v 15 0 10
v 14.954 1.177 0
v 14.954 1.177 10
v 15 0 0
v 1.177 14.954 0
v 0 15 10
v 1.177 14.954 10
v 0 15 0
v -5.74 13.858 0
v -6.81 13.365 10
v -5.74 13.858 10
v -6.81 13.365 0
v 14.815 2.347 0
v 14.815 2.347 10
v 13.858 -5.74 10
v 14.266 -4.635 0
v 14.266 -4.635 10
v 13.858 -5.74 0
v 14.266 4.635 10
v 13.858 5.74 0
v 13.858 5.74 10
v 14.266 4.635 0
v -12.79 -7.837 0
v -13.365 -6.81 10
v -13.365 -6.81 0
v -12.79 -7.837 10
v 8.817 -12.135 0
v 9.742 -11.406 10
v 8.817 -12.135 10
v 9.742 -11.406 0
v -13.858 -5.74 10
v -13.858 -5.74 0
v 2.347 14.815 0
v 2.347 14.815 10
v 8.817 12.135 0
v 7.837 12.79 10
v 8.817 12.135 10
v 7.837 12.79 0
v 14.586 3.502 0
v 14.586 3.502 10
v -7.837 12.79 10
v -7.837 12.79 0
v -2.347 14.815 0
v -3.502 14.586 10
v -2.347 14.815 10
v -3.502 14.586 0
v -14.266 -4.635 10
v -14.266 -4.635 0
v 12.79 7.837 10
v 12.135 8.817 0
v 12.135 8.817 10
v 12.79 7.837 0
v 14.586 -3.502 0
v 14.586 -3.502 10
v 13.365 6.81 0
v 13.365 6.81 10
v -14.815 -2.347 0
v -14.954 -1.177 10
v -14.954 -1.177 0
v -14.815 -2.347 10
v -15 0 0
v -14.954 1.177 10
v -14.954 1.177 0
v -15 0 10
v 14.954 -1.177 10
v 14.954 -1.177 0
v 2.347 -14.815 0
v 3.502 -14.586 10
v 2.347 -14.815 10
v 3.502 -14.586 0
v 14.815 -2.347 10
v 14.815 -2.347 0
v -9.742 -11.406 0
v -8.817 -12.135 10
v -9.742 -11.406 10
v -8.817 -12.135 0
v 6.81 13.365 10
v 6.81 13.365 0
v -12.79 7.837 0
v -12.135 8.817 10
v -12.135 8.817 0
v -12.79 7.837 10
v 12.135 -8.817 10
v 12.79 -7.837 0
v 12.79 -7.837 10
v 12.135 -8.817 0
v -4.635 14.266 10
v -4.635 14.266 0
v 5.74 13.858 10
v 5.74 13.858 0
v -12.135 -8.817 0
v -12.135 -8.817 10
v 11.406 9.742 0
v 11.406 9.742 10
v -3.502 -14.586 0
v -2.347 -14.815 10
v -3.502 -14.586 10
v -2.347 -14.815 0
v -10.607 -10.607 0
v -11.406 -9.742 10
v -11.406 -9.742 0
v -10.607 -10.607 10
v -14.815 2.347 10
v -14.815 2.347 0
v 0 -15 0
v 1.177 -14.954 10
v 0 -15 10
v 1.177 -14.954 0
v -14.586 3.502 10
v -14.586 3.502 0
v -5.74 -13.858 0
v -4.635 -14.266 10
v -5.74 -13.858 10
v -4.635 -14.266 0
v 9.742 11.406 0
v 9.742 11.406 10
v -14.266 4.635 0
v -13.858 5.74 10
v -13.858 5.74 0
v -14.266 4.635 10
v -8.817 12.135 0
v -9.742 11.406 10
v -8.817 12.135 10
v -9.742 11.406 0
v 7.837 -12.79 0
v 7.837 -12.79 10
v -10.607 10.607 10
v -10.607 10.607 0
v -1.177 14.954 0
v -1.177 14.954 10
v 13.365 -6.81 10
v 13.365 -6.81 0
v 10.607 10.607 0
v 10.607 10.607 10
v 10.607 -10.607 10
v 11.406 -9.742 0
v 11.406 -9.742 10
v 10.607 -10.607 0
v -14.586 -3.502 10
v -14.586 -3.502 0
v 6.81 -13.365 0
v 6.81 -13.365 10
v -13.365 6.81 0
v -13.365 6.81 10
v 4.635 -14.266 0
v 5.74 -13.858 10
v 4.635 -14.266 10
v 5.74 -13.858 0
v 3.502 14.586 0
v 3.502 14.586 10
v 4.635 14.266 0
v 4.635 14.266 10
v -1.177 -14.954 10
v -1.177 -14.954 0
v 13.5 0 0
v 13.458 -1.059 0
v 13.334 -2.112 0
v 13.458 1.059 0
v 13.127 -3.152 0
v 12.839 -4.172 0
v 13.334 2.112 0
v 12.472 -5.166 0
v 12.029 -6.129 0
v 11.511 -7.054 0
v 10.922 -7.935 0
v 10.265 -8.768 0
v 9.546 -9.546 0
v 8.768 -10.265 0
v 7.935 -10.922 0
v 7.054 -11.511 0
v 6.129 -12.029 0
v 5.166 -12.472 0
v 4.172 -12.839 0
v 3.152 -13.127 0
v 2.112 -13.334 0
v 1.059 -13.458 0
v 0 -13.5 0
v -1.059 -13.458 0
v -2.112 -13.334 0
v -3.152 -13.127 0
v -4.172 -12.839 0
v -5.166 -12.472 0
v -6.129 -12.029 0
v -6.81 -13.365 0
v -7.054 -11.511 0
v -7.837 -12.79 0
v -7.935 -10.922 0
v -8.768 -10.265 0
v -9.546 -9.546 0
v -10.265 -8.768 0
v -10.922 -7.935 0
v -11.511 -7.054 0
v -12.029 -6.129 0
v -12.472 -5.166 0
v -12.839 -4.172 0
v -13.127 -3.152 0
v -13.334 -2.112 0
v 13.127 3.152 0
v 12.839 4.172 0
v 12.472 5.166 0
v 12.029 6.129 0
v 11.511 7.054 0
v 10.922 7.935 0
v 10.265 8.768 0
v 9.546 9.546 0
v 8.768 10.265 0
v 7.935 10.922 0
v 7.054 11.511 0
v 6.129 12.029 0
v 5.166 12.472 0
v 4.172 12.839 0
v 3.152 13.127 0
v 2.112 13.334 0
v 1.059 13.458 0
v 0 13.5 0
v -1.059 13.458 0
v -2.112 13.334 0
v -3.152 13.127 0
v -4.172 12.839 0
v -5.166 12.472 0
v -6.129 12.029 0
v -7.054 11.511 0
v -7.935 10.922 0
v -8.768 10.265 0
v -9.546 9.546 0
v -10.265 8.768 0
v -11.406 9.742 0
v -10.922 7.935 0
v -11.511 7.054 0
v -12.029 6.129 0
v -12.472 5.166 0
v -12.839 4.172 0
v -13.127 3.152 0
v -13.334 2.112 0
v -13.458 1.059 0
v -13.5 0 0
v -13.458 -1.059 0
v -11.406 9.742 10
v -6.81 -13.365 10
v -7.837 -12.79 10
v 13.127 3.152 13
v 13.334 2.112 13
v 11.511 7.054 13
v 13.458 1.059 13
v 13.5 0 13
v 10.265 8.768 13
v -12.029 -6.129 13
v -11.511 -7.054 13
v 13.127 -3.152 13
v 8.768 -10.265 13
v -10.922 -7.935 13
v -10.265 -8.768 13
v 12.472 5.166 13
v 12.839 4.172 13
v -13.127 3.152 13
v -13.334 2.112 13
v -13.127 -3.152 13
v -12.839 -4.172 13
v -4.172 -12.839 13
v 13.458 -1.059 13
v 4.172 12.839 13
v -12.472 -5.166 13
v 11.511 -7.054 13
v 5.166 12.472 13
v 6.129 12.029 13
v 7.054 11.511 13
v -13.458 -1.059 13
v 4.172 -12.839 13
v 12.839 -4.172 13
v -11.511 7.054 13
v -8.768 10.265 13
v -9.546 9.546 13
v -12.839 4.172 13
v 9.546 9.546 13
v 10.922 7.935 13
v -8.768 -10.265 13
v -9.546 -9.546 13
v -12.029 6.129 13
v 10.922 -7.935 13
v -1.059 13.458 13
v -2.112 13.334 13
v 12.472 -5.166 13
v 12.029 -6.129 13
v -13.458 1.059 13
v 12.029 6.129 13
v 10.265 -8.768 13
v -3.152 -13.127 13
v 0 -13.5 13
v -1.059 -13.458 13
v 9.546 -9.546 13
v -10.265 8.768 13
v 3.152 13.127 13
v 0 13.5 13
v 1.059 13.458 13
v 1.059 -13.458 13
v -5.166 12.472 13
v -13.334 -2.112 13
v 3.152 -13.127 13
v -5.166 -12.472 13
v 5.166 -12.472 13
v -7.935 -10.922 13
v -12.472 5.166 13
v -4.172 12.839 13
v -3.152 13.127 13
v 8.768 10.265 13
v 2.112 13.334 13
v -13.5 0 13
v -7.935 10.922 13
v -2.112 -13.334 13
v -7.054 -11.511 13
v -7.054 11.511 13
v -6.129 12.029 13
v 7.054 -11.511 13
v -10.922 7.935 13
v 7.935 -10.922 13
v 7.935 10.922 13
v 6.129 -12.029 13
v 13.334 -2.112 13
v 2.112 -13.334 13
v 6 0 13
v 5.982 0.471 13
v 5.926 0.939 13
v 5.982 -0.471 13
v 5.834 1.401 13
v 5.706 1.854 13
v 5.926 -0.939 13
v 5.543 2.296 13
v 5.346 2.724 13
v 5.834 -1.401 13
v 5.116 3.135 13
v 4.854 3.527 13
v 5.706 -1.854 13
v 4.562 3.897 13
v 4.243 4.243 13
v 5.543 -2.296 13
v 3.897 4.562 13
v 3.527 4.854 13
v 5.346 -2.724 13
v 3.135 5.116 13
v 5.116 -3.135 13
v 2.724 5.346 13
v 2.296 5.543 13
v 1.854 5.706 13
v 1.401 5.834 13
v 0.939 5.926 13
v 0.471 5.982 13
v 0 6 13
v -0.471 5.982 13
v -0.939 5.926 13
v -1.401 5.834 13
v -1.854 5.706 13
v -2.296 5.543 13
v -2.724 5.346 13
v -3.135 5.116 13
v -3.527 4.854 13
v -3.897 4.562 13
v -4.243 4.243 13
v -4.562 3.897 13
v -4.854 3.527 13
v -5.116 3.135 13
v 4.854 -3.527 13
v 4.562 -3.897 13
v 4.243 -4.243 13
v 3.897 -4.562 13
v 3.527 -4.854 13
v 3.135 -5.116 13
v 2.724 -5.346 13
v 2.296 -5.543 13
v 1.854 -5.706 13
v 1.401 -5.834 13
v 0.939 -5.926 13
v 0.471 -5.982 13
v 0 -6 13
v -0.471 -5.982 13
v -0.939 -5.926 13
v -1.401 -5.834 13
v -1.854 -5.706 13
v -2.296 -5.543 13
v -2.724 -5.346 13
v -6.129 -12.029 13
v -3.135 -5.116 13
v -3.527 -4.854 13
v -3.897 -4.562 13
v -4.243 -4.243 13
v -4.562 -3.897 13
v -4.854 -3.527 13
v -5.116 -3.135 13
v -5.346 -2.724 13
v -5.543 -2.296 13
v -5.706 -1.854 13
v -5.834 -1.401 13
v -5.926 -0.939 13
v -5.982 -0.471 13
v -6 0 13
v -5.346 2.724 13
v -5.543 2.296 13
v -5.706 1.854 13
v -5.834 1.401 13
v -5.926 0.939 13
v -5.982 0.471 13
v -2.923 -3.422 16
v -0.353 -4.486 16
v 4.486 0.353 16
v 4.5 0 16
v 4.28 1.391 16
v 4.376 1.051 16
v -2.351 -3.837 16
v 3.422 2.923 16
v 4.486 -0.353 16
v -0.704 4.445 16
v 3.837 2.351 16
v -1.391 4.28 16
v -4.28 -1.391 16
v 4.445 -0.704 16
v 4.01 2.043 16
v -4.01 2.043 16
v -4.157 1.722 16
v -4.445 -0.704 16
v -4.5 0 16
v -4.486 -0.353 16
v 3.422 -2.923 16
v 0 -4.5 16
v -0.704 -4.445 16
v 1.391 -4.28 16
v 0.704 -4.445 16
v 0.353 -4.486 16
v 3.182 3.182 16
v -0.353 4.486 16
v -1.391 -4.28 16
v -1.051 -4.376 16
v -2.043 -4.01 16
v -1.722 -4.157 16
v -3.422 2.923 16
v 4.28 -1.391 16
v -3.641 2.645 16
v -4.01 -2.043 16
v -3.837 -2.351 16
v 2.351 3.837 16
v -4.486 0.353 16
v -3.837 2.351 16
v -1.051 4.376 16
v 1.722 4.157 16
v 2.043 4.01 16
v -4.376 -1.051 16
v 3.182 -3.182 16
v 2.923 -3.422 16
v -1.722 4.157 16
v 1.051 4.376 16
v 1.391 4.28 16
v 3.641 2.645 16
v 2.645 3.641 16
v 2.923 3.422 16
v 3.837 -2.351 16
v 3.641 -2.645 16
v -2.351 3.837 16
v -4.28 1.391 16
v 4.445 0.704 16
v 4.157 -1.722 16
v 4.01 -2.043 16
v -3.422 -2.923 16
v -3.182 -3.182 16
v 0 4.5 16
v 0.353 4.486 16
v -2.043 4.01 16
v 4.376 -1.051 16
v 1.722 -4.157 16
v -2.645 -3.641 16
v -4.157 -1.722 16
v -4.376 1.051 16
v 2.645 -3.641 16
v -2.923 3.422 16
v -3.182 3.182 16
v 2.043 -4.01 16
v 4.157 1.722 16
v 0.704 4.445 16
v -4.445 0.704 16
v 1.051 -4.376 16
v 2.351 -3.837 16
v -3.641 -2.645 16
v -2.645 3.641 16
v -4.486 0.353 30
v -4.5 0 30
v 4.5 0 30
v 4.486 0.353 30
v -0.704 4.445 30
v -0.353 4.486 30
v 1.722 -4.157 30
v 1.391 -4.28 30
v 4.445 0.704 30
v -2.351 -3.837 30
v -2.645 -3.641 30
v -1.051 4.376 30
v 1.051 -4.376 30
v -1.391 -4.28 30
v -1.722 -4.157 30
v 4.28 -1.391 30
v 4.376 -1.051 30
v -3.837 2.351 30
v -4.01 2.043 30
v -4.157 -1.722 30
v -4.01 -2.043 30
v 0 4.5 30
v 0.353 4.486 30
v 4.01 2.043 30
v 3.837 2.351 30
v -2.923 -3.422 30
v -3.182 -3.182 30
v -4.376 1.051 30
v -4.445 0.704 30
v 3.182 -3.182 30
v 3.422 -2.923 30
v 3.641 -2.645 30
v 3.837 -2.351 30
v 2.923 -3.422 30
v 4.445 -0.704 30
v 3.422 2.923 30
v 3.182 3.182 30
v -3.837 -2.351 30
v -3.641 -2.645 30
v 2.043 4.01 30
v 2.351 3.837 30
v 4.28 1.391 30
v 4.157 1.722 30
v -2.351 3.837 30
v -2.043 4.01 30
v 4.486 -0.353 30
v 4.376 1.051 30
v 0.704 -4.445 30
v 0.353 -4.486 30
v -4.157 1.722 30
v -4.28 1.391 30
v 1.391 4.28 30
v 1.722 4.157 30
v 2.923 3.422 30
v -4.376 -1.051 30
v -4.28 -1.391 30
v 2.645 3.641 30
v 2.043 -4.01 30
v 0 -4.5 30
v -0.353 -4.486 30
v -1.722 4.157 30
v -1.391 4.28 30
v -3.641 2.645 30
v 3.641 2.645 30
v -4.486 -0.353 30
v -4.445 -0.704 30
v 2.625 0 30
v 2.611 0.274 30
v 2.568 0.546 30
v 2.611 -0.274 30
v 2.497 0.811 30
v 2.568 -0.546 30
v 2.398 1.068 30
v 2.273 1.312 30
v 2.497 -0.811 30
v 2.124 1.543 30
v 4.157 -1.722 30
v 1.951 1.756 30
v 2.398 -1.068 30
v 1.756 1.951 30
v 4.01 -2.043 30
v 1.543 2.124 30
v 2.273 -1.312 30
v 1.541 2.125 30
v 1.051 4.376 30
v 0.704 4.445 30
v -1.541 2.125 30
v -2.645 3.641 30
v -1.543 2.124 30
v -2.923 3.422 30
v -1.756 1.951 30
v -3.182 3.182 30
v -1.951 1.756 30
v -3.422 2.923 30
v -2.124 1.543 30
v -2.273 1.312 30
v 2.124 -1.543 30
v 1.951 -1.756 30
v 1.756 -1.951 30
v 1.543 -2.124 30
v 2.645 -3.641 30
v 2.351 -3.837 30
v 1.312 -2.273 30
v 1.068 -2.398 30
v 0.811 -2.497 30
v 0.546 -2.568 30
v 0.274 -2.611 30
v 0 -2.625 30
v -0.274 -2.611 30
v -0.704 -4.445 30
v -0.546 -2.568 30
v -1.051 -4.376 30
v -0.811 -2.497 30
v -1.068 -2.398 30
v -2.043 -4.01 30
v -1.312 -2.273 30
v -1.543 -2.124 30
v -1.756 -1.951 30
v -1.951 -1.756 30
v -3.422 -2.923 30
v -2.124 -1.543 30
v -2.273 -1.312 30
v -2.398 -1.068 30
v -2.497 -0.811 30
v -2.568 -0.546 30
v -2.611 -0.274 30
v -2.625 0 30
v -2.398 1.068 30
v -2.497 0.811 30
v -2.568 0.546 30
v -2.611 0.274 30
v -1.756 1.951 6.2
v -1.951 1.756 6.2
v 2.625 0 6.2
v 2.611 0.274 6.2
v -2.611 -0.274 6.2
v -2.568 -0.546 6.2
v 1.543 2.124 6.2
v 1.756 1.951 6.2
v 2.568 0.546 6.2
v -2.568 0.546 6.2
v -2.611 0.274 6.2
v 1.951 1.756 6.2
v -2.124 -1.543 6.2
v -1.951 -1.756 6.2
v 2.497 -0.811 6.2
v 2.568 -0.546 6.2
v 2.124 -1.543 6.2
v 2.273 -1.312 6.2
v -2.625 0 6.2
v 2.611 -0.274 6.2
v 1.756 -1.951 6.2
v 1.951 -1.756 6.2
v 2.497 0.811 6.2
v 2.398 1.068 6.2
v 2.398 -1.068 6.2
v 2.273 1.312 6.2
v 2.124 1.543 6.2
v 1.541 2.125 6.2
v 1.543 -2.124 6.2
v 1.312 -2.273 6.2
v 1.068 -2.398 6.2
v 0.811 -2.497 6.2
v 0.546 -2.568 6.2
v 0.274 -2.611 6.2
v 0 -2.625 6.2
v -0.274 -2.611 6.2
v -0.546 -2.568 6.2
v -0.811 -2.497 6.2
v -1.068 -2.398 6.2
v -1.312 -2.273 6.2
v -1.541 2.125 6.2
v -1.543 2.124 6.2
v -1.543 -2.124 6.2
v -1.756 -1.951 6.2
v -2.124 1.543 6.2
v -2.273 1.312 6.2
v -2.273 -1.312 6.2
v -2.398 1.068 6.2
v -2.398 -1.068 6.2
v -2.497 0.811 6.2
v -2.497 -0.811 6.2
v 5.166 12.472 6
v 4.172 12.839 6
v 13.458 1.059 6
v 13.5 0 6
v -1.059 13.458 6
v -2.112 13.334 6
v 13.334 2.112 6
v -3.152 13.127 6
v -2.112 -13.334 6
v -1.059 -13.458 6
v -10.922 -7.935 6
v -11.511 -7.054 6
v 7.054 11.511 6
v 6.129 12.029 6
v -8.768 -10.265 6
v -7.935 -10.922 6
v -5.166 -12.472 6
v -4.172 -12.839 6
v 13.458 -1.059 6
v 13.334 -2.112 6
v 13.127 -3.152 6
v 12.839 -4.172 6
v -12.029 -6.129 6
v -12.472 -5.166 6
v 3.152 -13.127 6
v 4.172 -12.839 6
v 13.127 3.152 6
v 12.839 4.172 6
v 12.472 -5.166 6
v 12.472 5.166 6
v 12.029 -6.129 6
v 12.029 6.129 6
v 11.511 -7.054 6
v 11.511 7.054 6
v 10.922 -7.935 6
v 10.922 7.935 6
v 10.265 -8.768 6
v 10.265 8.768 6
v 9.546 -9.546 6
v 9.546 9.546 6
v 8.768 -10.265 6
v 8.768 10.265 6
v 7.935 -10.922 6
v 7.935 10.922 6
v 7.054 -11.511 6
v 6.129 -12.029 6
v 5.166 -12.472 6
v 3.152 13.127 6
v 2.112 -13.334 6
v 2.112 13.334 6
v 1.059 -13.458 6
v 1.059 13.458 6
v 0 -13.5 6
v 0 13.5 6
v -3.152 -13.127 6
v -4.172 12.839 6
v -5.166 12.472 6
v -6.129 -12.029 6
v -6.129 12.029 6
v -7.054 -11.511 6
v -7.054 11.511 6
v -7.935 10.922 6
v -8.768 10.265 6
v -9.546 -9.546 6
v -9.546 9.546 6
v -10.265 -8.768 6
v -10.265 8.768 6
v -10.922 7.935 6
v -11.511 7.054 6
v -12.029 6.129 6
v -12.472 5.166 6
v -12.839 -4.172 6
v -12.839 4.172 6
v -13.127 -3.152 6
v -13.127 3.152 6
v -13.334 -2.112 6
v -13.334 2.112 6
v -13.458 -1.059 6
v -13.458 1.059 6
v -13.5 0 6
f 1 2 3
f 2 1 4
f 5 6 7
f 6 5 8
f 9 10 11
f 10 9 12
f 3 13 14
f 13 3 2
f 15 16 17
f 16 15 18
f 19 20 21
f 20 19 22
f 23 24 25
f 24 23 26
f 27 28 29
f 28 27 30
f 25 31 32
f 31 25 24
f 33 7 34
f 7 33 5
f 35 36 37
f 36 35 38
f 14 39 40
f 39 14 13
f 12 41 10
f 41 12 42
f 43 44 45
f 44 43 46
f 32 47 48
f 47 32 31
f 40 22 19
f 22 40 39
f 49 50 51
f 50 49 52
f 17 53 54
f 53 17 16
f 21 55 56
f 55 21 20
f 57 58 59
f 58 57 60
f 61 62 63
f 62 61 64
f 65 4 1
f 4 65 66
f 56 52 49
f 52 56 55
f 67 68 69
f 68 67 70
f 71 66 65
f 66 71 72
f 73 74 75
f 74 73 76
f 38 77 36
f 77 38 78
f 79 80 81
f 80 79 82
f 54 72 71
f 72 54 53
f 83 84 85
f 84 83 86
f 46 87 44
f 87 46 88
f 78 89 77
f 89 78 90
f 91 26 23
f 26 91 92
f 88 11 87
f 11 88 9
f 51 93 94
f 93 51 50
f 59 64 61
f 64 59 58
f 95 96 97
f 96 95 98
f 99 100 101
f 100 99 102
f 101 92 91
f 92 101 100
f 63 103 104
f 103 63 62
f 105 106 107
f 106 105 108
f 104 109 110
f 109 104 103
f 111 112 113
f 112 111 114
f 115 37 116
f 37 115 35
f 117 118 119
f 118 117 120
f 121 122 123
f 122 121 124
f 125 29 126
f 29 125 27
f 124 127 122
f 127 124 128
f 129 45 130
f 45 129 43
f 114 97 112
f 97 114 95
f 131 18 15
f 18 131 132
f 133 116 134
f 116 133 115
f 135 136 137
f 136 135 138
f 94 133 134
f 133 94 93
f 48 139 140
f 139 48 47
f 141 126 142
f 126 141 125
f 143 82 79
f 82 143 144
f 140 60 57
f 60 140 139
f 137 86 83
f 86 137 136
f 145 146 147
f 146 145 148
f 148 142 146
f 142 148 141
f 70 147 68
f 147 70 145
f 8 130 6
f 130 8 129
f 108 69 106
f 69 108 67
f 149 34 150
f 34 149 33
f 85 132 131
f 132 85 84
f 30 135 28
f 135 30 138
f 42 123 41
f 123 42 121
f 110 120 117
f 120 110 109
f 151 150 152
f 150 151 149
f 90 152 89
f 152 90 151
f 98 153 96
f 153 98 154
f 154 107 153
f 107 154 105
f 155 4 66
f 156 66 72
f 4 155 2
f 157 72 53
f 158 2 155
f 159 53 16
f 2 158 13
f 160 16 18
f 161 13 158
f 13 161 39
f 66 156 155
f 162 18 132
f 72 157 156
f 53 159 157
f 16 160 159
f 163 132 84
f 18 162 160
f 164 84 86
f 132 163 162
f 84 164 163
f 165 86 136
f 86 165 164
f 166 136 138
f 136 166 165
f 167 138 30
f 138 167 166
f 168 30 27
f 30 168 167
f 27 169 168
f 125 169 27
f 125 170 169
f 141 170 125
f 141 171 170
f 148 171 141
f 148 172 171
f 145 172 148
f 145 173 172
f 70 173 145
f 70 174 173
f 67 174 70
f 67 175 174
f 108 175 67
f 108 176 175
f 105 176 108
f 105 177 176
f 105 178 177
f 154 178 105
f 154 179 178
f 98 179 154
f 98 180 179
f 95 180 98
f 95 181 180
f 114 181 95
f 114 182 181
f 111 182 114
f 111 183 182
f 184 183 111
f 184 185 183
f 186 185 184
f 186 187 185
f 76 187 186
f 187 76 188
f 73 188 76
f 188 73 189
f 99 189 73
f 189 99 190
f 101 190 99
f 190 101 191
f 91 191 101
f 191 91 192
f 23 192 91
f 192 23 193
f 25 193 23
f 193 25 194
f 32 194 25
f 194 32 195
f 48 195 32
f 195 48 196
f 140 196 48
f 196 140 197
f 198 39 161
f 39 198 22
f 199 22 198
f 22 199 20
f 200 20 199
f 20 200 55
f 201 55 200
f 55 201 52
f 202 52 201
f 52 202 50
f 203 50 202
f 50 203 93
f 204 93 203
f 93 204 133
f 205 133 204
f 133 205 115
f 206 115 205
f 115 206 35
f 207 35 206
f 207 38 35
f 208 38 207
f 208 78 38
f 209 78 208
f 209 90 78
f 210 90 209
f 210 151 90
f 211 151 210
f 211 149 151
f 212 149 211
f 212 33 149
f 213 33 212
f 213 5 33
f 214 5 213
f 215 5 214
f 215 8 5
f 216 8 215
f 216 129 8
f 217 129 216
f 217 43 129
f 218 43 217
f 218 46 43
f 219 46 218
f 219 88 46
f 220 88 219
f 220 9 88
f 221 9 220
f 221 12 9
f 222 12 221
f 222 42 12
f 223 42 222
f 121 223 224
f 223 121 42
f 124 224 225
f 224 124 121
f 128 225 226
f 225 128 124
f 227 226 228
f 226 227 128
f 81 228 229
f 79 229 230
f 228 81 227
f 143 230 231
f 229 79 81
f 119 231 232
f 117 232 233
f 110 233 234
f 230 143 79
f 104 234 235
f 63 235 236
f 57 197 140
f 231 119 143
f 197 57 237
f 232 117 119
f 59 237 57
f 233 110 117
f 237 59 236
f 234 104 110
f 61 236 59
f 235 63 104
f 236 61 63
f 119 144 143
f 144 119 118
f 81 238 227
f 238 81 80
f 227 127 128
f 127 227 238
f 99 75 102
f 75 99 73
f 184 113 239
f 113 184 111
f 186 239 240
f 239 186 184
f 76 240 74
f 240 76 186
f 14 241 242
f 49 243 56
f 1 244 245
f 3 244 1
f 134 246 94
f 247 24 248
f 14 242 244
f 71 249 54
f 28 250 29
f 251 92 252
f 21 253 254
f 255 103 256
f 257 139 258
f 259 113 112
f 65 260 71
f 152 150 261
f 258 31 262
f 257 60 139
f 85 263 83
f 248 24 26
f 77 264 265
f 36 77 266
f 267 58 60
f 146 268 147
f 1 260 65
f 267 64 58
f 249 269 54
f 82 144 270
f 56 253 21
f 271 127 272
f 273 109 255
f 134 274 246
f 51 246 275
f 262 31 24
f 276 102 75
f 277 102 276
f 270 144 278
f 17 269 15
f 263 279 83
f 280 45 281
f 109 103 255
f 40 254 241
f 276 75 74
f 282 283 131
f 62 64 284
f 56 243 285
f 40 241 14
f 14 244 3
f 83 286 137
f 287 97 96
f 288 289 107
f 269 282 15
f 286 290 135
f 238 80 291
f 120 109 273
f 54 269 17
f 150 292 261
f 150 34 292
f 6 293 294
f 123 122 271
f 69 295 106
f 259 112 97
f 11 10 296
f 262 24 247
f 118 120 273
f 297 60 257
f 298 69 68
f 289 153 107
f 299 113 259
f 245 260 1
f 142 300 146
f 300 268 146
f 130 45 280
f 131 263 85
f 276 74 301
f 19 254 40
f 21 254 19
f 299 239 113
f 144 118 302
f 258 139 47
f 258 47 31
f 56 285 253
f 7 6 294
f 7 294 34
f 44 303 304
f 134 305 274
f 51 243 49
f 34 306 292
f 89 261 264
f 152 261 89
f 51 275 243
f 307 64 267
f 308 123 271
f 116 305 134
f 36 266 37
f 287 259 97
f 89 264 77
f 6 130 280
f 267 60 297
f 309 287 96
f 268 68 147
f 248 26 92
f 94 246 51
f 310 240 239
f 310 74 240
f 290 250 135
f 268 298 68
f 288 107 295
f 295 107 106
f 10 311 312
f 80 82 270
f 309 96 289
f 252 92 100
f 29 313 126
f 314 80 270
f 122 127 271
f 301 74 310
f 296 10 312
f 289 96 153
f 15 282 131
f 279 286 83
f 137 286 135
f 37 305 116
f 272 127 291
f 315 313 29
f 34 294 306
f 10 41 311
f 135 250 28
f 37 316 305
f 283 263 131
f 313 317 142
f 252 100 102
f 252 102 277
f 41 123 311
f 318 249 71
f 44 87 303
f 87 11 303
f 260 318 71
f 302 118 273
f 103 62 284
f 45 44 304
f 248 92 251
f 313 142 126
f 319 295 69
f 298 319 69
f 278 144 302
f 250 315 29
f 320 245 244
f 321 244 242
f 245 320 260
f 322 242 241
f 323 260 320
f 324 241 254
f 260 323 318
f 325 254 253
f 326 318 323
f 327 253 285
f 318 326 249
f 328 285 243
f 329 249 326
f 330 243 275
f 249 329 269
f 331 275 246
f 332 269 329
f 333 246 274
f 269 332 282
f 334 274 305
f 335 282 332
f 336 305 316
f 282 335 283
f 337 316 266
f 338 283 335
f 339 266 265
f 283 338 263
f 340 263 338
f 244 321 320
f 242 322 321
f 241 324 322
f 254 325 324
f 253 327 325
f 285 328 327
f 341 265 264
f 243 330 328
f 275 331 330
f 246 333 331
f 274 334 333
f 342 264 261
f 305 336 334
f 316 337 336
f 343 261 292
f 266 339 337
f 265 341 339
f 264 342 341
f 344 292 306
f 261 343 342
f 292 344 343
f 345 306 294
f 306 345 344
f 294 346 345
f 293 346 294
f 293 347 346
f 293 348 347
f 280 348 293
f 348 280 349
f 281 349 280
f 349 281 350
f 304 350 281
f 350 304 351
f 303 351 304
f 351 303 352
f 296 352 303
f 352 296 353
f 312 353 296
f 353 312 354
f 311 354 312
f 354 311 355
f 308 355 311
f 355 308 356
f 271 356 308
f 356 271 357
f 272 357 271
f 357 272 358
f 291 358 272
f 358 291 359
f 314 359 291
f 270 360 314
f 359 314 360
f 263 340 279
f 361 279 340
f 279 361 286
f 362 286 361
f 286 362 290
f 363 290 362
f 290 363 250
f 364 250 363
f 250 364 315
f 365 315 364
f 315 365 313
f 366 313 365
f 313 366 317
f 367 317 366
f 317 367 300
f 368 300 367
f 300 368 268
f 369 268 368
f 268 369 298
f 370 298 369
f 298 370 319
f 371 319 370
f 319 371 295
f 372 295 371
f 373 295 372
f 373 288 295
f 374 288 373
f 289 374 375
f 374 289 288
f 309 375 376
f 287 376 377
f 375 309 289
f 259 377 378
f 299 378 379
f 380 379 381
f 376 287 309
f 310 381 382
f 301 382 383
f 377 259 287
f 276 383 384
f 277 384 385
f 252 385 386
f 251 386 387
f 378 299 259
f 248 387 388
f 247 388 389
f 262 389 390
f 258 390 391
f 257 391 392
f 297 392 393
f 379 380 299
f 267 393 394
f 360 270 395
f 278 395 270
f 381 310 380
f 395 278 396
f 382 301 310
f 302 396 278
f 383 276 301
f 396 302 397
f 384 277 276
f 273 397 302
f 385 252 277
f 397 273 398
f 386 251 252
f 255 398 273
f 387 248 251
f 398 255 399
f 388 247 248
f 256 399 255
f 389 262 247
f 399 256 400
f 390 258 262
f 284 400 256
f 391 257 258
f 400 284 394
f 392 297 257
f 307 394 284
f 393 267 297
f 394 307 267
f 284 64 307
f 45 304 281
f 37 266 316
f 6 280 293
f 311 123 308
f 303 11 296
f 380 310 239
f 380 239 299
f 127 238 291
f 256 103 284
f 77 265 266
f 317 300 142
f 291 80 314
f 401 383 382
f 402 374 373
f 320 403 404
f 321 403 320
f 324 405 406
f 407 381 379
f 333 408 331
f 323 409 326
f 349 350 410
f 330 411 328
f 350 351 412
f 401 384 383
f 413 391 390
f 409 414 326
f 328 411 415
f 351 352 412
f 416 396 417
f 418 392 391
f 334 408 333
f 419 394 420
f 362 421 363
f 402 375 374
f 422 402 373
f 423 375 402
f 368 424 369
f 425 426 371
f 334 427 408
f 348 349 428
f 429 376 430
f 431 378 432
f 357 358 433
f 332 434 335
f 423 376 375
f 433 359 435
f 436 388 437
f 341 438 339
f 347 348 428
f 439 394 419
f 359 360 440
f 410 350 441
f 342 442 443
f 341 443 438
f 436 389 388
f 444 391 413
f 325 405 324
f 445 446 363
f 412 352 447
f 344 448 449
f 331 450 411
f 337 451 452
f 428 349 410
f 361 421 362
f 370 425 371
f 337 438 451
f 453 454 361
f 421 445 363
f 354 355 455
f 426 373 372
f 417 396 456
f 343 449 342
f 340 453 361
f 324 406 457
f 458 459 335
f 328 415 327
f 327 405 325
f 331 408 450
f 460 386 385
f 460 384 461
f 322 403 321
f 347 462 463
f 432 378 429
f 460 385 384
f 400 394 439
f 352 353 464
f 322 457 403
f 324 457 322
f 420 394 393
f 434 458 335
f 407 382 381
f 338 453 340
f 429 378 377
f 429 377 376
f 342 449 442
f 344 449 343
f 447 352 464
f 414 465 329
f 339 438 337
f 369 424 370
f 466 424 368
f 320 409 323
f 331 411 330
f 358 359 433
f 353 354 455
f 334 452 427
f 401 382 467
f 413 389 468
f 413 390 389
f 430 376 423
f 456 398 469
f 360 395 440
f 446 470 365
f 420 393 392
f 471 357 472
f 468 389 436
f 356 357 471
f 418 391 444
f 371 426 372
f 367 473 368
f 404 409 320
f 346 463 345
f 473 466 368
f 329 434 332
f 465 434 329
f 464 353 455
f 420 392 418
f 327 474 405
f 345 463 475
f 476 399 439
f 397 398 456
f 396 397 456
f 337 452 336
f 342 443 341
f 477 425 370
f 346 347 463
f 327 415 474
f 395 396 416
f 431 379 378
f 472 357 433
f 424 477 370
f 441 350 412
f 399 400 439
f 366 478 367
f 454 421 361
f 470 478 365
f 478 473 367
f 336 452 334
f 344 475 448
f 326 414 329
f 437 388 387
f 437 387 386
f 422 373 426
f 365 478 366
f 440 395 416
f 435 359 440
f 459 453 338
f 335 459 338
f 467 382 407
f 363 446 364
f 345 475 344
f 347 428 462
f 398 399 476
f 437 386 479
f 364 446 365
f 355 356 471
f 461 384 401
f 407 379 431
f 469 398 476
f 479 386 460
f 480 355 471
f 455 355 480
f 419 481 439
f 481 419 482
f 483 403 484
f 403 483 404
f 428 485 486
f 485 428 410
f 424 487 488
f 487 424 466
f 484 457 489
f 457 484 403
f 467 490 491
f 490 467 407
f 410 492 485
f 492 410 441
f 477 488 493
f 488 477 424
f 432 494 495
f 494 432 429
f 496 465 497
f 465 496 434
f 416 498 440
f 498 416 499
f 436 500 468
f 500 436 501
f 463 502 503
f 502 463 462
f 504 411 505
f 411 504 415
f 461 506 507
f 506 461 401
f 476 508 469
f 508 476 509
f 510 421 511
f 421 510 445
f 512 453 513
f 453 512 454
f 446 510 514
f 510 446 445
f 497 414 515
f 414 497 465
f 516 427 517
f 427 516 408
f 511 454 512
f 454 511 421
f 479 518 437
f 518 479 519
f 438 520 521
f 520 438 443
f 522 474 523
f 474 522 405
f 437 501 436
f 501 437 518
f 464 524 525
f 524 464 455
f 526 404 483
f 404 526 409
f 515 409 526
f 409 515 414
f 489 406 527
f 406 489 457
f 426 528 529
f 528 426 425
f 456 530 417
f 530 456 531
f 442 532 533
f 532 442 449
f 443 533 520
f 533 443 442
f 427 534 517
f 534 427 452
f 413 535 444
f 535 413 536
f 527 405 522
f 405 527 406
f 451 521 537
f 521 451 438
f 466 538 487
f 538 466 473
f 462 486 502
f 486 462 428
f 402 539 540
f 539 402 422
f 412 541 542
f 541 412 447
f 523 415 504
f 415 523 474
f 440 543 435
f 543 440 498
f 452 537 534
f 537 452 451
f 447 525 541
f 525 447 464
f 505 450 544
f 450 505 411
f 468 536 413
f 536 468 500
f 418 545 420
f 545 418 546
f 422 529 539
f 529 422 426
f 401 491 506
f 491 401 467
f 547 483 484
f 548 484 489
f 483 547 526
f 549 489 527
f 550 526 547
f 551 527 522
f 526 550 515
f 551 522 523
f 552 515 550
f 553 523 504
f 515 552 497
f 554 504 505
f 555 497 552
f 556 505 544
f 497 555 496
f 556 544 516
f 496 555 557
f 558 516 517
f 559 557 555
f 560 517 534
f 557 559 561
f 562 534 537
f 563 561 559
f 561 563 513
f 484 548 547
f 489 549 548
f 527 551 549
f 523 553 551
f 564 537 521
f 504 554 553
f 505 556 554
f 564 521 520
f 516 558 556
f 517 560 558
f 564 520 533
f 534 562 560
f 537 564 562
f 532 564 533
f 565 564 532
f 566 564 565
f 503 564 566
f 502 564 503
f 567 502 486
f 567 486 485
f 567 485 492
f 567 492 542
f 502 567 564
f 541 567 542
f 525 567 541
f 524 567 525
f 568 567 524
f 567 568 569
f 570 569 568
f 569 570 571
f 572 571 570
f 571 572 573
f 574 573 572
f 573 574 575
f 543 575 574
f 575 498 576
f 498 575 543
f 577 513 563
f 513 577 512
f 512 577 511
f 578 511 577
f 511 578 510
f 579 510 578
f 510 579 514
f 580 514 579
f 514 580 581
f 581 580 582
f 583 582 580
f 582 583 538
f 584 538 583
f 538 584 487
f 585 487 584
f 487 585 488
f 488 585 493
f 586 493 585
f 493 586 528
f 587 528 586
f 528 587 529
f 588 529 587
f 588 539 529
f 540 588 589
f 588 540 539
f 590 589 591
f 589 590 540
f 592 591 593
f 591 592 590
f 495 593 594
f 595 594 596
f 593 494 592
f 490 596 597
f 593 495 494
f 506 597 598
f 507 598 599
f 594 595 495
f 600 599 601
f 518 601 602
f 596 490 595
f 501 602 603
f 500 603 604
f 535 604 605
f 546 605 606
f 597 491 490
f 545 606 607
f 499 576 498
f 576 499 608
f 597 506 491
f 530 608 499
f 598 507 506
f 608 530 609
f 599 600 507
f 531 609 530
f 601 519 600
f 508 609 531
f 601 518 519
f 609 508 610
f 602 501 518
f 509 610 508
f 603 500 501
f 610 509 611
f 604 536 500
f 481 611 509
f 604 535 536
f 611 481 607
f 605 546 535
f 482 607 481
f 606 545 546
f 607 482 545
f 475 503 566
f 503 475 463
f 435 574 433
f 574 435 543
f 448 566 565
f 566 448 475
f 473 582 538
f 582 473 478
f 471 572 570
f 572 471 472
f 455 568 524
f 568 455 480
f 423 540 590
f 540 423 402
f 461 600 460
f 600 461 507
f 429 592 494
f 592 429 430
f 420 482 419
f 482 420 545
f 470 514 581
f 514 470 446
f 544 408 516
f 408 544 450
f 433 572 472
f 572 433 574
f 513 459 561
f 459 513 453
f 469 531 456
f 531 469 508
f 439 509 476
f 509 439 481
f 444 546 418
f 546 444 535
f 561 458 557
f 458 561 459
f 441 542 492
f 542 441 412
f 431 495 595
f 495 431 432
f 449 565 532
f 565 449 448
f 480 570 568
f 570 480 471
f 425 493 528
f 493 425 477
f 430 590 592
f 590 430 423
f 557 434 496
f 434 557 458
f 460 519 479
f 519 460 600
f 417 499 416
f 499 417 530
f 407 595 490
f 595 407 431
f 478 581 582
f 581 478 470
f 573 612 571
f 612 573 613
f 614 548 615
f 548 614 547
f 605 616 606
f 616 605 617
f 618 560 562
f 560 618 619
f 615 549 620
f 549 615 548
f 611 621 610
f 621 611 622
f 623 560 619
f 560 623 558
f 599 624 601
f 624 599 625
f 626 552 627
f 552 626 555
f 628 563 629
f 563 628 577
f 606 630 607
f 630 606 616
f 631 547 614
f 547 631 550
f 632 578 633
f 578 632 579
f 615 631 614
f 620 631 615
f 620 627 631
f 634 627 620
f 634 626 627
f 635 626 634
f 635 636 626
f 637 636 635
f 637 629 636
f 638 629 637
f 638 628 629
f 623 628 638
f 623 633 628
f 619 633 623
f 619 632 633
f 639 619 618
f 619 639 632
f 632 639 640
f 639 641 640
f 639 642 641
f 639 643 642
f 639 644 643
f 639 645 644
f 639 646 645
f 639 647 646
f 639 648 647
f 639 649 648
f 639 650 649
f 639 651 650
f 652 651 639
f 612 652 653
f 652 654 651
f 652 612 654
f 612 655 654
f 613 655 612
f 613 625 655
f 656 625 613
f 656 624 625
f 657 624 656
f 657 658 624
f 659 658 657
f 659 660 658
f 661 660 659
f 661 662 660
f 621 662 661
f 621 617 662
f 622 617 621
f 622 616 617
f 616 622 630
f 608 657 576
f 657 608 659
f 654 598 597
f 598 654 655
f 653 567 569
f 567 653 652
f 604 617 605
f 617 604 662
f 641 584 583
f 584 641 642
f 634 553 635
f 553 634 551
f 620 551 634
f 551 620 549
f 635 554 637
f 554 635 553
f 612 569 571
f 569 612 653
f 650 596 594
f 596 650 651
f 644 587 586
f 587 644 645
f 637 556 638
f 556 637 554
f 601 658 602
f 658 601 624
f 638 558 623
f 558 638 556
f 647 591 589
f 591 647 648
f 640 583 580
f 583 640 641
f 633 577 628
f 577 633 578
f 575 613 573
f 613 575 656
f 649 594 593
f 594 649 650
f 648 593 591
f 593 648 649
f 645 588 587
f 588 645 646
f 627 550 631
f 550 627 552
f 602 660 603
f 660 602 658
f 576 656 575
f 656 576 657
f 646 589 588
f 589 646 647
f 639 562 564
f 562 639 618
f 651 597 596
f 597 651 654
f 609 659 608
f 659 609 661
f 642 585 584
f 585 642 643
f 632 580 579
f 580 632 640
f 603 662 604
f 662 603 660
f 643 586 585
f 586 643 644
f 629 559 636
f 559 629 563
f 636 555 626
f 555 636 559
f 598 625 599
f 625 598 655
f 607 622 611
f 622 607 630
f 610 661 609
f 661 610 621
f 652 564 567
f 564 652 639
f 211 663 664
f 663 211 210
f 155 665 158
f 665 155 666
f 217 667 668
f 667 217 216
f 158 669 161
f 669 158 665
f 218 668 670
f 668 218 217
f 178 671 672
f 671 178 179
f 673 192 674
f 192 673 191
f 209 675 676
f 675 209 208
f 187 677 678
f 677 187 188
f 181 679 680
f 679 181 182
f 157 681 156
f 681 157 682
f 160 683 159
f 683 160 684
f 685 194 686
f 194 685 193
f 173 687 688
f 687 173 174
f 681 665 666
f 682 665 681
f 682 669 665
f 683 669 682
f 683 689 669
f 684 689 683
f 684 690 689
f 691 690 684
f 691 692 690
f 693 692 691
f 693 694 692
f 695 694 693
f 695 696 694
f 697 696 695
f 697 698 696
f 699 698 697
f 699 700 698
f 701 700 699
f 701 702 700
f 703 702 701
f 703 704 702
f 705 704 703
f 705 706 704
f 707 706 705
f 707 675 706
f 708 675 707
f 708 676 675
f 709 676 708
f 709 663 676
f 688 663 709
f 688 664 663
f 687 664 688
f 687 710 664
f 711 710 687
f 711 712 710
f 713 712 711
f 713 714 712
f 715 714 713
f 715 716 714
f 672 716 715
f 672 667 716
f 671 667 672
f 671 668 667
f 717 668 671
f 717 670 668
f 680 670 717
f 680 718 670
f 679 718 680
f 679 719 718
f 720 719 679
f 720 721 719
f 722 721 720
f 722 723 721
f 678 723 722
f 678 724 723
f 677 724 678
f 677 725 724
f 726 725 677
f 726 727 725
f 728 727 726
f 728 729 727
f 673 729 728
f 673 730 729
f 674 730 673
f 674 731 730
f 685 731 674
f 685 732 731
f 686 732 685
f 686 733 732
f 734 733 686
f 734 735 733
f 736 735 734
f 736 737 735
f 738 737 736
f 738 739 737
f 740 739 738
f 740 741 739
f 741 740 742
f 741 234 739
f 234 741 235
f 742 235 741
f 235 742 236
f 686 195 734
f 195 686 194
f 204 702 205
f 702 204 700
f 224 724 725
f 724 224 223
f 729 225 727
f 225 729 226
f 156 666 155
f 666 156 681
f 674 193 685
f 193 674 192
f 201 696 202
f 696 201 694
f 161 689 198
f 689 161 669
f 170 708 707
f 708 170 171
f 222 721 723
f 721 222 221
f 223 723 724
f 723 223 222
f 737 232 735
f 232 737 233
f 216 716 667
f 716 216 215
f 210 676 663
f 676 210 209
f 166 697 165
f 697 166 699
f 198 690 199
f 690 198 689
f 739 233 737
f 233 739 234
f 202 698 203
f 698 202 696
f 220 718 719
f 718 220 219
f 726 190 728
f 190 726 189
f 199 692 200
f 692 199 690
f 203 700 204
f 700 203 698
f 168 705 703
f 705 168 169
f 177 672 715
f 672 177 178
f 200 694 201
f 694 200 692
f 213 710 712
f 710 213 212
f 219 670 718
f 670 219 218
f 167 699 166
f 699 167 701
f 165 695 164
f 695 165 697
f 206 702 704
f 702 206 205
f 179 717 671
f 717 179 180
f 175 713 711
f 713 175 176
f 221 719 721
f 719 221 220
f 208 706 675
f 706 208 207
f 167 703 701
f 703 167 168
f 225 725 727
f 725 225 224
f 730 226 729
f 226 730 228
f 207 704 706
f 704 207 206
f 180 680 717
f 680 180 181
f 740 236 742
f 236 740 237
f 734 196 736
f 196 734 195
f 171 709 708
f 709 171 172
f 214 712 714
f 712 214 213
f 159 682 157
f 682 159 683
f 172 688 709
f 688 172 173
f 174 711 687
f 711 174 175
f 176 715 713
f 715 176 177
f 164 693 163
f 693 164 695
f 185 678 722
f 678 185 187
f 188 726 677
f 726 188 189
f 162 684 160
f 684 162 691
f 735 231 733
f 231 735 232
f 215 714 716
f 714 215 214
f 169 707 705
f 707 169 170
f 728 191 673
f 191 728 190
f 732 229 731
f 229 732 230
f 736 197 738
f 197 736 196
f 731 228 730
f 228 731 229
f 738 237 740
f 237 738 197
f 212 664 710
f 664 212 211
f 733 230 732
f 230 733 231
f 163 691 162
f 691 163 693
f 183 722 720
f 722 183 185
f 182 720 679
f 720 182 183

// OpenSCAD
$fn=80;

dh = 27;
osad = 5.25;

difference(){
union(){
cylinder(d = dh+3, h = 10);
translate([0, 0, 10]) cylinder(d1 = dh+3, d2 = dh, h=3);
translate([0, 0, 10+3]) cylinder(d1 = 9+3, d2 = 9, h=3);
cylinder(d = 9, h = 30);
}

    cylinder(d=dh, h = 6);
    translate([0, 0, 6.2]) difference(){
        cylinder(d = osad,  h = 50, $fn=60);
        translate([-osad/2, osad/2-0.5, 0]) cube([5, 5, 50]);
    }
}
